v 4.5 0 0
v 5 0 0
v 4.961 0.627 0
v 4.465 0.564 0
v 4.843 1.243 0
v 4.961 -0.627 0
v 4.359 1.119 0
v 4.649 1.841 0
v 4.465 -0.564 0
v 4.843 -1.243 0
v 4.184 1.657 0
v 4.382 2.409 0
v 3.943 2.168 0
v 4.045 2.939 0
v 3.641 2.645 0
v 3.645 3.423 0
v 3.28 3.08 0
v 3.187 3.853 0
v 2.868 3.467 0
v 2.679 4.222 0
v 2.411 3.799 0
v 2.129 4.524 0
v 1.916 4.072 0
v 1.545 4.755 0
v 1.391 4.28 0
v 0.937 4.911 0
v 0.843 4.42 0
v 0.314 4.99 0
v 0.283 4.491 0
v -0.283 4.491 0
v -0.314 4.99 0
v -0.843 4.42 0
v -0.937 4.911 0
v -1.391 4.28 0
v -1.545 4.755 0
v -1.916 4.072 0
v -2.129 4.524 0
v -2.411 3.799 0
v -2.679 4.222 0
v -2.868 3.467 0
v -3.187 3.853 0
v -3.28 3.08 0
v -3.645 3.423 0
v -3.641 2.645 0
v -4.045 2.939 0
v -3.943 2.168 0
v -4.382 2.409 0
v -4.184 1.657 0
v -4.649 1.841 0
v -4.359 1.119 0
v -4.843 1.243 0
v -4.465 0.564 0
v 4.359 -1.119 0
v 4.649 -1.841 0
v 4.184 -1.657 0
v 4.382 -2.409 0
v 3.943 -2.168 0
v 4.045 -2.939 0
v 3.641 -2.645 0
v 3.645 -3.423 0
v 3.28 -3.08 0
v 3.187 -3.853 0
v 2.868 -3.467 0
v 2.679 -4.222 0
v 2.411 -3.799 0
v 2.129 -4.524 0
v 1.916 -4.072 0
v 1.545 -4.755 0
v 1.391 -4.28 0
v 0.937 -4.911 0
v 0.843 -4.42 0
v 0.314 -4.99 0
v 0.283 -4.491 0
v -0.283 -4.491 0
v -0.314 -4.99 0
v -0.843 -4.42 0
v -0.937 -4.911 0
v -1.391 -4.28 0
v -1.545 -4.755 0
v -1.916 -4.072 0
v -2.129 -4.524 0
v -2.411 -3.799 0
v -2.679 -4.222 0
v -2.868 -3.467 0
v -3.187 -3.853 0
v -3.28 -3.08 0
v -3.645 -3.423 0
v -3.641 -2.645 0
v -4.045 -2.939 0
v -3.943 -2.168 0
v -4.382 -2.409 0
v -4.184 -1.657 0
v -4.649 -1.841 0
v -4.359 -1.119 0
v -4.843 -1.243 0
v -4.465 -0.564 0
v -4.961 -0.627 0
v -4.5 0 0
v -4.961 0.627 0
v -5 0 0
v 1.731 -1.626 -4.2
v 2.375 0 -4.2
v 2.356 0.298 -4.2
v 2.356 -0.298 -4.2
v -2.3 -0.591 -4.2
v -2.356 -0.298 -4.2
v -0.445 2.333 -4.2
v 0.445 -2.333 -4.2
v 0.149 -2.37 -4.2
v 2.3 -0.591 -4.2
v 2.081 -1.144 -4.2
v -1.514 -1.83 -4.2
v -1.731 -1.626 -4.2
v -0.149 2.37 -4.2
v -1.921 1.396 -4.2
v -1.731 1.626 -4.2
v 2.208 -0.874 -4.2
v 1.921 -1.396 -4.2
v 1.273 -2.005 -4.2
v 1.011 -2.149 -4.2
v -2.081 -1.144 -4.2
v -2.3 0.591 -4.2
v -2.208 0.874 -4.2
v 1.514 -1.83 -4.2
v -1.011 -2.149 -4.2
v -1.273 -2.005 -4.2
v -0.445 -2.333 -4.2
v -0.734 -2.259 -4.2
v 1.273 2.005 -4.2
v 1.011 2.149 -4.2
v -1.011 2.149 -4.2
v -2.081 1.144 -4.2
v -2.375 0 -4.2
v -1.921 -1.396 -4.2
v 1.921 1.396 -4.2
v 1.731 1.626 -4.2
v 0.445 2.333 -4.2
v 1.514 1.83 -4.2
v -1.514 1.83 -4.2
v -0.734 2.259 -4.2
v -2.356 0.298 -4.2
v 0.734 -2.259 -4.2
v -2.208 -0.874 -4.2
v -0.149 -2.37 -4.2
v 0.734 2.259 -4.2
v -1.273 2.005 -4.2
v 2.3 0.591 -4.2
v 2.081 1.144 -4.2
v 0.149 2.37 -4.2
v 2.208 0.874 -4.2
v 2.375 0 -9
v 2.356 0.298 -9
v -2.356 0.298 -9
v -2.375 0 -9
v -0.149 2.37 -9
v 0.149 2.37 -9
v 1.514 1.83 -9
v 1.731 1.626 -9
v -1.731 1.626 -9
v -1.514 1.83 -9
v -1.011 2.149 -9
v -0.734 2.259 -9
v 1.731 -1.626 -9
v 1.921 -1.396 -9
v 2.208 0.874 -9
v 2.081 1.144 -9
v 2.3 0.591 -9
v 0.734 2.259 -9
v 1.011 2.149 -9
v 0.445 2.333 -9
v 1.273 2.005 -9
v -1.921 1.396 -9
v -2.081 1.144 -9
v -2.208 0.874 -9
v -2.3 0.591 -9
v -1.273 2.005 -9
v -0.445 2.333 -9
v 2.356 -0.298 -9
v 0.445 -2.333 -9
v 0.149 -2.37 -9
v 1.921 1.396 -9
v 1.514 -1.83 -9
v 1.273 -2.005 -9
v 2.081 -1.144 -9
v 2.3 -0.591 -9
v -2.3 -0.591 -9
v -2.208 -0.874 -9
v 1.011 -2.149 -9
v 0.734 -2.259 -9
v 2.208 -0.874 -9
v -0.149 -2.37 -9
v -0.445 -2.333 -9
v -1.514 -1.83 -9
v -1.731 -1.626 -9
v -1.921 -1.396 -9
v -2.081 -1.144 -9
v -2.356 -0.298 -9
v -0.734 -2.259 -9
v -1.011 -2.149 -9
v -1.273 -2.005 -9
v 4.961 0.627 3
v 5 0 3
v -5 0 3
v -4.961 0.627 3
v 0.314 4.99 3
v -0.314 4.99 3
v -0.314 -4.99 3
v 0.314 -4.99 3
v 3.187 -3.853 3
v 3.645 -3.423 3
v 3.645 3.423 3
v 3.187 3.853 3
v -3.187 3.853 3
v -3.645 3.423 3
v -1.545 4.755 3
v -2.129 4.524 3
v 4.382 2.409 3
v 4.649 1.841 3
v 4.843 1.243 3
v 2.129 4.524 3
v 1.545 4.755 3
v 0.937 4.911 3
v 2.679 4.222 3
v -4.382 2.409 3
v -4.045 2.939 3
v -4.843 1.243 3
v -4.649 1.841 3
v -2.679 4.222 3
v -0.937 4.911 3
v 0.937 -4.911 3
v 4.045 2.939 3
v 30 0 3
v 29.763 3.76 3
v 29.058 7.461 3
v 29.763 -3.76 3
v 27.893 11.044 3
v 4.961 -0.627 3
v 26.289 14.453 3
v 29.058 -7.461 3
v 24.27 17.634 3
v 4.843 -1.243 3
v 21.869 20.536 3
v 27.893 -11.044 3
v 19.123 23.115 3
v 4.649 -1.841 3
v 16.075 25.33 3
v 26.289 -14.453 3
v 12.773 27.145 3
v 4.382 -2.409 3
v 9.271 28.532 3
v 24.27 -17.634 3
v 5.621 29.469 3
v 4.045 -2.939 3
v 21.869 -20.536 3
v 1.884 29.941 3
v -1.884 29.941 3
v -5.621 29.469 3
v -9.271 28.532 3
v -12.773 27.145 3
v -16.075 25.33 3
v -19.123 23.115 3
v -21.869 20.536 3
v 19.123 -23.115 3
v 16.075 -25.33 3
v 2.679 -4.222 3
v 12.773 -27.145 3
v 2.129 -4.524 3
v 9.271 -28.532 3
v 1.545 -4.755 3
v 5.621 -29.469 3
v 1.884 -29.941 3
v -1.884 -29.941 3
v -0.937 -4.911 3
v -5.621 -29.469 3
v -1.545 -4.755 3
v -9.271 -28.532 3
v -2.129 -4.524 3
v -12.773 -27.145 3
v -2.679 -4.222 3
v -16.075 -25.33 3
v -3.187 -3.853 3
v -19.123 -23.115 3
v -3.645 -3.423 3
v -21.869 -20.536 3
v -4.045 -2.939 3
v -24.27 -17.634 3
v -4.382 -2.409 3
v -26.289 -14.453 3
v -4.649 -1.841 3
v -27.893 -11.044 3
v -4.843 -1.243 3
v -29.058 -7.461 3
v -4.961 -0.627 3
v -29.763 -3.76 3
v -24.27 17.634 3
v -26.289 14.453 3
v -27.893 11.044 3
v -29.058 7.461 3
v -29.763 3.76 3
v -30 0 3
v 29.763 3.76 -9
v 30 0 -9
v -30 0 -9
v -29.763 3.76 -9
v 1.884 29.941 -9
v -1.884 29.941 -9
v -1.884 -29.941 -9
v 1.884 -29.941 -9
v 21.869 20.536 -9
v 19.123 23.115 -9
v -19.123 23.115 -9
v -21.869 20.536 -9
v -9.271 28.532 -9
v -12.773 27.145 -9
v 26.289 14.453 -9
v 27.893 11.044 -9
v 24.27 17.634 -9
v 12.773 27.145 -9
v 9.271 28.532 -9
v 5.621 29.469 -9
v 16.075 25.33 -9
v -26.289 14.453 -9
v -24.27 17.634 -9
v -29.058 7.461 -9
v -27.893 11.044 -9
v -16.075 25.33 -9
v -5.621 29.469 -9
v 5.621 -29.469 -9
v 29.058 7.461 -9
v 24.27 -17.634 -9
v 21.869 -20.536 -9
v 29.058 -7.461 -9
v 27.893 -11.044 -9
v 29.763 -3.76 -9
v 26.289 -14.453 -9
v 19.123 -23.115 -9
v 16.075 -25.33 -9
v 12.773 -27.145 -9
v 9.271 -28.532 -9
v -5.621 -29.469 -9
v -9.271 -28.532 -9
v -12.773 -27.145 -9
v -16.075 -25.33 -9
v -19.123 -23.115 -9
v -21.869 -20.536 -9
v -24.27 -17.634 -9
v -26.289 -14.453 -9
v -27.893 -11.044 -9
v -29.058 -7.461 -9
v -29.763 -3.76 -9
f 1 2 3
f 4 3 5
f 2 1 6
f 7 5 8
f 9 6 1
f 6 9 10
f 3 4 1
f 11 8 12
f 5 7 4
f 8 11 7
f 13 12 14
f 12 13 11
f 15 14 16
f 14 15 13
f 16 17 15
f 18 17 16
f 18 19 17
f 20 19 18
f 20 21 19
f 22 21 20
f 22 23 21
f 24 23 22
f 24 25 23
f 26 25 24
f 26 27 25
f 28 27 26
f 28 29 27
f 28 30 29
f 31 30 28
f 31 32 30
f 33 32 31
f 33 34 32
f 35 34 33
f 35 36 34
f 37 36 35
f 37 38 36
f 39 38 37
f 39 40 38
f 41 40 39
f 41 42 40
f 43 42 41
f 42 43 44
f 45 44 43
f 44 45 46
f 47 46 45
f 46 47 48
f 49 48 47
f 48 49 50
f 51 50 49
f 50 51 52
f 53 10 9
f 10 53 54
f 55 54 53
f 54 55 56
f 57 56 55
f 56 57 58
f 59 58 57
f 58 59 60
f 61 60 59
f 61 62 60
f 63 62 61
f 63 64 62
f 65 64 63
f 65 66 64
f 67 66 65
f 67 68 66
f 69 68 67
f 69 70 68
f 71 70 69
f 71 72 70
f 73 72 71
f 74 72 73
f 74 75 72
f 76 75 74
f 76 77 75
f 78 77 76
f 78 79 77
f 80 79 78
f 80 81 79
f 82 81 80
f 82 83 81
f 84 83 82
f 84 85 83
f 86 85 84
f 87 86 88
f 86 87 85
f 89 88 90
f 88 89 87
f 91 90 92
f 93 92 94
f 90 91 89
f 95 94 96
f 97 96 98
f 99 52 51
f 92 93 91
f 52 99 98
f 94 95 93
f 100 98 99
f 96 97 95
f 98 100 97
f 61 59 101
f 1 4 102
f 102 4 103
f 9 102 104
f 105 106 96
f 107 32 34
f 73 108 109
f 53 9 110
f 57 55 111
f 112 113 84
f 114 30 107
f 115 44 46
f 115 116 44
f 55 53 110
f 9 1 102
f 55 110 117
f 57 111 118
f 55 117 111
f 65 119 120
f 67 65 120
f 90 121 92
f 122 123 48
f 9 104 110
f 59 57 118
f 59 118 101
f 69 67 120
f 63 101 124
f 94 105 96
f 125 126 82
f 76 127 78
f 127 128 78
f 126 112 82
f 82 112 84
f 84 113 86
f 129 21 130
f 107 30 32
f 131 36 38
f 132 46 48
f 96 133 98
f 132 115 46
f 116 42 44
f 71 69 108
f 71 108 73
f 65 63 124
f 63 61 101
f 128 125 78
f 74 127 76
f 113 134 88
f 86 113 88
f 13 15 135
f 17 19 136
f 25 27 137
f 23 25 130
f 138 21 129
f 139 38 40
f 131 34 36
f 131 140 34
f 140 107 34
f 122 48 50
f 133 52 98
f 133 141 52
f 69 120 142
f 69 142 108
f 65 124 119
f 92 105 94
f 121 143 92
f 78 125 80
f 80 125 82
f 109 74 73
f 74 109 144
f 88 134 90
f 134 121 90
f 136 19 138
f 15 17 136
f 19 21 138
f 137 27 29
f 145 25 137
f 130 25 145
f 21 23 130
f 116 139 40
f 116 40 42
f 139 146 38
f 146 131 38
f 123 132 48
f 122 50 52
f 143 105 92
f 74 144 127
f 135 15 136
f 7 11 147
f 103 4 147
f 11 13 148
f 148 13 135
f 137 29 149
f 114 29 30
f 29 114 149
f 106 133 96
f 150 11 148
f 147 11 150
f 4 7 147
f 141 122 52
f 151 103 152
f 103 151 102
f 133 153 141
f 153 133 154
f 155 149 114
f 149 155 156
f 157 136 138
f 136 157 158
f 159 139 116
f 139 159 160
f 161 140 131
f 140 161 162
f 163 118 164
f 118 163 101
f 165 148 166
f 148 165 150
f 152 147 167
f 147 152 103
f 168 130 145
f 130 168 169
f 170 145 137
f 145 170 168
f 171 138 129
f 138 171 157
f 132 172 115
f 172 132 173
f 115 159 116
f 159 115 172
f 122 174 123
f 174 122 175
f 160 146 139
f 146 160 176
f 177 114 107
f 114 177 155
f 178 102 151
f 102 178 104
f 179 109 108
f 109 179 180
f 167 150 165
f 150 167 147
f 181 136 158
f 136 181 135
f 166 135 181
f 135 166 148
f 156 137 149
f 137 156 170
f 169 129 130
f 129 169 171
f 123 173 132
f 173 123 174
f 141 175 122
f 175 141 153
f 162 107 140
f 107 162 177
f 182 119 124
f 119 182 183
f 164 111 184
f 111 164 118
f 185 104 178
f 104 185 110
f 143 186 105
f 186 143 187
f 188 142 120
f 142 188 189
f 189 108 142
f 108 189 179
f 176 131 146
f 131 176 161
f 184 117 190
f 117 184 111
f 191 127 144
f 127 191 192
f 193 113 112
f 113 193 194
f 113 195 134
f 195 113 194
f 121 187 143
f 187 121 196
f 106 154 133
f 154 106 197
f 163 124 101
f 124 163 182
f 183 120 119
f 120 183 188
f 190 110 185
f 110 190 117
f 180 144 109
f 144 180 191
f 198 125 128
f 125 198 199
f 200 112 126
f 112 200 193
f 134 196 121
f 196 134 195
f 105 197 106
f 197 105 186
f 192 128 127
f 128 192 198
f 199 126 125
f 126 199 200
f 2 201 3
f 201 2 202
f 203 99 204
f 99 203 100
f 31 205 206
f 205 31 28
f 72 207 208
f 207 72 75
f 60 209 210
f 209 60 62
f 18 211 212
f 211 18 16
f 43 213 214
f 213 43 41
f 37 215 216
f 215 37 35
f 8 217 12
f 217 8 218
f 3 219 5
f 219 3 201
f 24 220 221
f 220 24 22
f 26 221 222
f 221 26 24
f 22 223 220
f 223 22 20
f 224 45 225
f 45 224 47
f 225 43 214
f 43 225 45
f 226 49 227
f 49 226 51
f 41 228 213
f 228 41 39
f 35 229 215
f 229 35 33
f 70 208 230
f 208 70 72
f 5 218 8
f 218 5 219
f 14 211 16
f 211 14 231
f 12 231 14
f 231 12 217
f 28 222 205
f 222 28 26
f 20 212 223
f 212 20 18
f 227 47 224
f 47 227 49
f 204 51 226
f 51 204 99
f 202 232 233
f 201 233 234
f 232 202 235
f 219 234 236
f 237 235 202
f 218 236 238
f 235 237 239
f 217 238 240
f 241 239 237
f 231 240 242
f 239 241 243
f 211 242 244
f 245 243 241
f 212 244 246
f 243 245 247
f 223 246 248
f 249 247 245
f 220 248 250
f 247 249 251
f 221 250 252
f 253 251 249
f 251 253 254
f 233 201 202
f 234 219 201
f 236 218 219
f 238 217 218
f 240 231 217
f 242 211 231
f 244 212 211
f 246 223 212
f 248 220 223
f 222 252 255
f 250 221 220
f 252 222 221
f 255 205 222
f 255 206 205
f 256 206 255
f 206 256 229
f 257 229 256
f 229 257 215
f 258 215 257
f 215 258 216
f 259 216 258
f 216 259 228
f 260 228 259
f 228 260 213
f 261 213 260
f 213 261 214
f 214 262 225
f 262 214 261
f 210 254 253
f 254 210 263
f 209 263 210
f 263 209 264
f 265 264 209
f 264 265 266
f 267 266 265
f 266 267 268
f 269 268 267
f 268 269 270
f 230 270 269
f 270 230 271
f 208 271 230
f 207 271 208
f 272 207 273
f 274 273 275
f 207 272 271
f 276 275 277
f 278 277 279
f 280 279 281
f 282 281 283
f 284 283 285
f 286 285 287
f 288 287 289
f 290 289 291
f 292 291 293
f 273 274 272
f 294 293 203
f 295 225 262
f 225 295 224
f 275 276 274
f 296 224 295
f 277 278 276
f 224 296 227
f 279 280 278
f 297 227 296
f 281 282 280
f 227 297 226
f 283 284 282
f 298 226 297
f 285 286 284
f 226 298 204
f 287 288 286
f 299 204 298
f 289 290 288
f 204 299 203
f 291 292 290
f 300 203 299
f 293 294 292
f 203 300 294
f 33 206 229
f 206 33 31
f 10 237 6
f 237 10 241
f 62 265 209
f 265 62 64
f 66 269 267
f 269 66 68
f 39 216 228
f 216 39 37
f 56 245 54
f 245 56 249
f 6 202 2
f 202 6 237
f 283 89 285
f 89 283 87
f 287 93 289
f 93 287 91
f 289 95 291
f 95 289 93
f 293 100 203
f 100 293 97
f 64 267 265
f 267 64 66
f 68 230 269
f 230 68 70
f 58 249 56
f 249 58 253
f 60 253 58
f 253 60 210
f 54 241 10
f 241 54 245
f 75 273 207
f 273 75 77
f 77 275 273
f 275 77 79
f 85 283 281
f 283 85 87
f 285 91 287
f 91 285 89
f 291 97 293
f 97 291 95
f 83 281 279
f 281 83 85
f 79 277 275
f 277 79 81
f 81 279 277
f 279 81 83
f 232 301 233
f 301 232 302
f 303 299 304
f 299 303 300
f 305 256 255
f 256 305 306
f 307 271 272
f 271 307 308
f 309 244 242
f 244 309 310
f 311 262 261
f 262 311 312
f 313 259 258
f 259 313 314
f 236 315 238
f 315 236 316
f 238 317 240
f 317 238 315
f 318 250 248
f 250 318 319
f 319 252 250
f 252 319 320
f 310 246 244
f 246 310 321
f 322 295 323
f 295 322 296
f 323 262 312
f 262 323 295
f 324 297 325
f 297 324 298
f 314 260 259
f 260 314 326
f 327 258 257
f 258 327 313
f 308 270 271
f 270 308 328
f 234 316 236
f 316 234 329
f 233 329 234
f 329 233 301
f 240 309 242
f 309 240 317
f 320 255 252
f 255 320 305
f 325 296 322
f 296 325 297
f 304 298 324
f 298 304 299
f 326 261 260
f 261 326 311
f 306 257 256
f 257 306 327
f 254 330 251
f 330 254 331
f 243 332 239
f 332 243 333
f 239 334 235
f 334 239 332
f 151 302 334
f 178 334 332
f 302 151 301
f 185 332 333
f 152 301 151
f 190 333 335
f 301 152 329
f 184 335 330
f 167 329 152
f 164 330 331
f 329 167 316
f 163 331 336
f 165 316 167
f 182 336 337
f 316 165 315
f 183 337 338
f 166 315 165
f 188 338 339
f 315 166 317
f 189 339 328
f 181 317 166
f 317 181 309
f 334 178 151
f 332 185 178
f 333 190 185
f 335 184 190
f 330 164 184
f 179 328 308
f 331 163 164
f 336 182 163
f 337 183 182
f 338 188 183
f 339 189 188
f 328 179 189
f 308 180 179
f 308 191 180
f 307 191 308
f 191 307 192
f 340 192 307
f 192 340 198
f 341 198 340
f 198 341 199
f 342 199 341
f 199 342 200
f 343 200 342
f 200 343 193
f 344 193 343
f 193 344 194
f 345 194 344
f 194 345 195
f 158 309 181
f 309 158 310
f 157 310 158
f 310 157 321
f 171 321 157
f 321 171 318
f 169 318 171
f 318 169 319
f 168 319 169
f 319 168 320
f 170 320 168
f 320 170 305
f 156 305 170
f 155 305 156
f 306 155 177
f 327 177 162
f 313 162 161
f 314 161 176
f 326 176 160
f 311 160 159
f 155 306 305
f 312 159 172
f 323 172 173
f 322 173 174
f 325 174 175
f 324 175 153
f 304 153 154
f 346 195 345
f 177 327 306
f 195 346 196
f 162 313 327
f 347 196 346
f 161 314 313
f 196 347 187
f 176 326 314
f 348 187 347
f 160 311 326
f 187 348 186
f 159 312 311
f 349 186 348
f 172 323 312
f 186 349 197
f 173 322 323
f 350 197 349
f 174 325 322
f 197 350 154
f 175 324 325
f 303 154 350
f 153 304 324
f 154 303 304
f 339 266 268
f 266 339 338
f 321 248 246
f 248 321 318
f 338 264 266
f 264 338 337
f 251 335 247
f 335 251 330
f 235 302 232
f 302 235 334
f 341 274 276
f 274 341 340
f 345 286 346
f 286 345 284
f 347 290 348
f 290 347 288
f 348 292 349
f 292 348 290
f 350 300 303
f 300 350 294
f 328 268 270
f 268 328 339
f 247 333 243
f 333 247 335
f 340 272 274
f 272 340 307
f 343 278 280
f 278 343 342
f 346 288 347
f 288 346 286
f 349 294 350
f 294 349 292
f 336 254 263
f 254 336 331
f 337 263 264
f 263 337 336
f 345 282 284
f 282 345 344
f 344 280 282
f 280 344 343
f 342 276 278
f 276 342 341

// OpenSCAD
$fn = 50;


difference() {
	union() {
		translate(v = [0, 0, -9.0000000000]) {
			cylinder(h = 12, r = 30.0000000000);
		}
	}
	union() {
		translate(v = [0, 0, 0]) {
			rotate(a = [0, 0, 0]) {
				difference() {
					union() {
						translate(v = [0, 0, -12.0000000000]) {
							cylinder(h = 12, r = 2.2500000000);
						}
						translate(v = [0, 0, -4.2000000000]) {
							cylinder(h = 4.2000000000, r1 = 2.3750000000, r2 = 4.5000000000);
						}
						translate(v = [0, 0, -12.0000000000]) {
							cylinder(h = 12, r = 2.3750000000);
						}
						translate(v = [0, 0, -12.0000000000]) {
							cylinder(h = 12, r = 2.2500000000);
						}
					}
					union();
				}
			}
		}
		#cylinder(h = 3, r = 5.0000000000);
	}
}
